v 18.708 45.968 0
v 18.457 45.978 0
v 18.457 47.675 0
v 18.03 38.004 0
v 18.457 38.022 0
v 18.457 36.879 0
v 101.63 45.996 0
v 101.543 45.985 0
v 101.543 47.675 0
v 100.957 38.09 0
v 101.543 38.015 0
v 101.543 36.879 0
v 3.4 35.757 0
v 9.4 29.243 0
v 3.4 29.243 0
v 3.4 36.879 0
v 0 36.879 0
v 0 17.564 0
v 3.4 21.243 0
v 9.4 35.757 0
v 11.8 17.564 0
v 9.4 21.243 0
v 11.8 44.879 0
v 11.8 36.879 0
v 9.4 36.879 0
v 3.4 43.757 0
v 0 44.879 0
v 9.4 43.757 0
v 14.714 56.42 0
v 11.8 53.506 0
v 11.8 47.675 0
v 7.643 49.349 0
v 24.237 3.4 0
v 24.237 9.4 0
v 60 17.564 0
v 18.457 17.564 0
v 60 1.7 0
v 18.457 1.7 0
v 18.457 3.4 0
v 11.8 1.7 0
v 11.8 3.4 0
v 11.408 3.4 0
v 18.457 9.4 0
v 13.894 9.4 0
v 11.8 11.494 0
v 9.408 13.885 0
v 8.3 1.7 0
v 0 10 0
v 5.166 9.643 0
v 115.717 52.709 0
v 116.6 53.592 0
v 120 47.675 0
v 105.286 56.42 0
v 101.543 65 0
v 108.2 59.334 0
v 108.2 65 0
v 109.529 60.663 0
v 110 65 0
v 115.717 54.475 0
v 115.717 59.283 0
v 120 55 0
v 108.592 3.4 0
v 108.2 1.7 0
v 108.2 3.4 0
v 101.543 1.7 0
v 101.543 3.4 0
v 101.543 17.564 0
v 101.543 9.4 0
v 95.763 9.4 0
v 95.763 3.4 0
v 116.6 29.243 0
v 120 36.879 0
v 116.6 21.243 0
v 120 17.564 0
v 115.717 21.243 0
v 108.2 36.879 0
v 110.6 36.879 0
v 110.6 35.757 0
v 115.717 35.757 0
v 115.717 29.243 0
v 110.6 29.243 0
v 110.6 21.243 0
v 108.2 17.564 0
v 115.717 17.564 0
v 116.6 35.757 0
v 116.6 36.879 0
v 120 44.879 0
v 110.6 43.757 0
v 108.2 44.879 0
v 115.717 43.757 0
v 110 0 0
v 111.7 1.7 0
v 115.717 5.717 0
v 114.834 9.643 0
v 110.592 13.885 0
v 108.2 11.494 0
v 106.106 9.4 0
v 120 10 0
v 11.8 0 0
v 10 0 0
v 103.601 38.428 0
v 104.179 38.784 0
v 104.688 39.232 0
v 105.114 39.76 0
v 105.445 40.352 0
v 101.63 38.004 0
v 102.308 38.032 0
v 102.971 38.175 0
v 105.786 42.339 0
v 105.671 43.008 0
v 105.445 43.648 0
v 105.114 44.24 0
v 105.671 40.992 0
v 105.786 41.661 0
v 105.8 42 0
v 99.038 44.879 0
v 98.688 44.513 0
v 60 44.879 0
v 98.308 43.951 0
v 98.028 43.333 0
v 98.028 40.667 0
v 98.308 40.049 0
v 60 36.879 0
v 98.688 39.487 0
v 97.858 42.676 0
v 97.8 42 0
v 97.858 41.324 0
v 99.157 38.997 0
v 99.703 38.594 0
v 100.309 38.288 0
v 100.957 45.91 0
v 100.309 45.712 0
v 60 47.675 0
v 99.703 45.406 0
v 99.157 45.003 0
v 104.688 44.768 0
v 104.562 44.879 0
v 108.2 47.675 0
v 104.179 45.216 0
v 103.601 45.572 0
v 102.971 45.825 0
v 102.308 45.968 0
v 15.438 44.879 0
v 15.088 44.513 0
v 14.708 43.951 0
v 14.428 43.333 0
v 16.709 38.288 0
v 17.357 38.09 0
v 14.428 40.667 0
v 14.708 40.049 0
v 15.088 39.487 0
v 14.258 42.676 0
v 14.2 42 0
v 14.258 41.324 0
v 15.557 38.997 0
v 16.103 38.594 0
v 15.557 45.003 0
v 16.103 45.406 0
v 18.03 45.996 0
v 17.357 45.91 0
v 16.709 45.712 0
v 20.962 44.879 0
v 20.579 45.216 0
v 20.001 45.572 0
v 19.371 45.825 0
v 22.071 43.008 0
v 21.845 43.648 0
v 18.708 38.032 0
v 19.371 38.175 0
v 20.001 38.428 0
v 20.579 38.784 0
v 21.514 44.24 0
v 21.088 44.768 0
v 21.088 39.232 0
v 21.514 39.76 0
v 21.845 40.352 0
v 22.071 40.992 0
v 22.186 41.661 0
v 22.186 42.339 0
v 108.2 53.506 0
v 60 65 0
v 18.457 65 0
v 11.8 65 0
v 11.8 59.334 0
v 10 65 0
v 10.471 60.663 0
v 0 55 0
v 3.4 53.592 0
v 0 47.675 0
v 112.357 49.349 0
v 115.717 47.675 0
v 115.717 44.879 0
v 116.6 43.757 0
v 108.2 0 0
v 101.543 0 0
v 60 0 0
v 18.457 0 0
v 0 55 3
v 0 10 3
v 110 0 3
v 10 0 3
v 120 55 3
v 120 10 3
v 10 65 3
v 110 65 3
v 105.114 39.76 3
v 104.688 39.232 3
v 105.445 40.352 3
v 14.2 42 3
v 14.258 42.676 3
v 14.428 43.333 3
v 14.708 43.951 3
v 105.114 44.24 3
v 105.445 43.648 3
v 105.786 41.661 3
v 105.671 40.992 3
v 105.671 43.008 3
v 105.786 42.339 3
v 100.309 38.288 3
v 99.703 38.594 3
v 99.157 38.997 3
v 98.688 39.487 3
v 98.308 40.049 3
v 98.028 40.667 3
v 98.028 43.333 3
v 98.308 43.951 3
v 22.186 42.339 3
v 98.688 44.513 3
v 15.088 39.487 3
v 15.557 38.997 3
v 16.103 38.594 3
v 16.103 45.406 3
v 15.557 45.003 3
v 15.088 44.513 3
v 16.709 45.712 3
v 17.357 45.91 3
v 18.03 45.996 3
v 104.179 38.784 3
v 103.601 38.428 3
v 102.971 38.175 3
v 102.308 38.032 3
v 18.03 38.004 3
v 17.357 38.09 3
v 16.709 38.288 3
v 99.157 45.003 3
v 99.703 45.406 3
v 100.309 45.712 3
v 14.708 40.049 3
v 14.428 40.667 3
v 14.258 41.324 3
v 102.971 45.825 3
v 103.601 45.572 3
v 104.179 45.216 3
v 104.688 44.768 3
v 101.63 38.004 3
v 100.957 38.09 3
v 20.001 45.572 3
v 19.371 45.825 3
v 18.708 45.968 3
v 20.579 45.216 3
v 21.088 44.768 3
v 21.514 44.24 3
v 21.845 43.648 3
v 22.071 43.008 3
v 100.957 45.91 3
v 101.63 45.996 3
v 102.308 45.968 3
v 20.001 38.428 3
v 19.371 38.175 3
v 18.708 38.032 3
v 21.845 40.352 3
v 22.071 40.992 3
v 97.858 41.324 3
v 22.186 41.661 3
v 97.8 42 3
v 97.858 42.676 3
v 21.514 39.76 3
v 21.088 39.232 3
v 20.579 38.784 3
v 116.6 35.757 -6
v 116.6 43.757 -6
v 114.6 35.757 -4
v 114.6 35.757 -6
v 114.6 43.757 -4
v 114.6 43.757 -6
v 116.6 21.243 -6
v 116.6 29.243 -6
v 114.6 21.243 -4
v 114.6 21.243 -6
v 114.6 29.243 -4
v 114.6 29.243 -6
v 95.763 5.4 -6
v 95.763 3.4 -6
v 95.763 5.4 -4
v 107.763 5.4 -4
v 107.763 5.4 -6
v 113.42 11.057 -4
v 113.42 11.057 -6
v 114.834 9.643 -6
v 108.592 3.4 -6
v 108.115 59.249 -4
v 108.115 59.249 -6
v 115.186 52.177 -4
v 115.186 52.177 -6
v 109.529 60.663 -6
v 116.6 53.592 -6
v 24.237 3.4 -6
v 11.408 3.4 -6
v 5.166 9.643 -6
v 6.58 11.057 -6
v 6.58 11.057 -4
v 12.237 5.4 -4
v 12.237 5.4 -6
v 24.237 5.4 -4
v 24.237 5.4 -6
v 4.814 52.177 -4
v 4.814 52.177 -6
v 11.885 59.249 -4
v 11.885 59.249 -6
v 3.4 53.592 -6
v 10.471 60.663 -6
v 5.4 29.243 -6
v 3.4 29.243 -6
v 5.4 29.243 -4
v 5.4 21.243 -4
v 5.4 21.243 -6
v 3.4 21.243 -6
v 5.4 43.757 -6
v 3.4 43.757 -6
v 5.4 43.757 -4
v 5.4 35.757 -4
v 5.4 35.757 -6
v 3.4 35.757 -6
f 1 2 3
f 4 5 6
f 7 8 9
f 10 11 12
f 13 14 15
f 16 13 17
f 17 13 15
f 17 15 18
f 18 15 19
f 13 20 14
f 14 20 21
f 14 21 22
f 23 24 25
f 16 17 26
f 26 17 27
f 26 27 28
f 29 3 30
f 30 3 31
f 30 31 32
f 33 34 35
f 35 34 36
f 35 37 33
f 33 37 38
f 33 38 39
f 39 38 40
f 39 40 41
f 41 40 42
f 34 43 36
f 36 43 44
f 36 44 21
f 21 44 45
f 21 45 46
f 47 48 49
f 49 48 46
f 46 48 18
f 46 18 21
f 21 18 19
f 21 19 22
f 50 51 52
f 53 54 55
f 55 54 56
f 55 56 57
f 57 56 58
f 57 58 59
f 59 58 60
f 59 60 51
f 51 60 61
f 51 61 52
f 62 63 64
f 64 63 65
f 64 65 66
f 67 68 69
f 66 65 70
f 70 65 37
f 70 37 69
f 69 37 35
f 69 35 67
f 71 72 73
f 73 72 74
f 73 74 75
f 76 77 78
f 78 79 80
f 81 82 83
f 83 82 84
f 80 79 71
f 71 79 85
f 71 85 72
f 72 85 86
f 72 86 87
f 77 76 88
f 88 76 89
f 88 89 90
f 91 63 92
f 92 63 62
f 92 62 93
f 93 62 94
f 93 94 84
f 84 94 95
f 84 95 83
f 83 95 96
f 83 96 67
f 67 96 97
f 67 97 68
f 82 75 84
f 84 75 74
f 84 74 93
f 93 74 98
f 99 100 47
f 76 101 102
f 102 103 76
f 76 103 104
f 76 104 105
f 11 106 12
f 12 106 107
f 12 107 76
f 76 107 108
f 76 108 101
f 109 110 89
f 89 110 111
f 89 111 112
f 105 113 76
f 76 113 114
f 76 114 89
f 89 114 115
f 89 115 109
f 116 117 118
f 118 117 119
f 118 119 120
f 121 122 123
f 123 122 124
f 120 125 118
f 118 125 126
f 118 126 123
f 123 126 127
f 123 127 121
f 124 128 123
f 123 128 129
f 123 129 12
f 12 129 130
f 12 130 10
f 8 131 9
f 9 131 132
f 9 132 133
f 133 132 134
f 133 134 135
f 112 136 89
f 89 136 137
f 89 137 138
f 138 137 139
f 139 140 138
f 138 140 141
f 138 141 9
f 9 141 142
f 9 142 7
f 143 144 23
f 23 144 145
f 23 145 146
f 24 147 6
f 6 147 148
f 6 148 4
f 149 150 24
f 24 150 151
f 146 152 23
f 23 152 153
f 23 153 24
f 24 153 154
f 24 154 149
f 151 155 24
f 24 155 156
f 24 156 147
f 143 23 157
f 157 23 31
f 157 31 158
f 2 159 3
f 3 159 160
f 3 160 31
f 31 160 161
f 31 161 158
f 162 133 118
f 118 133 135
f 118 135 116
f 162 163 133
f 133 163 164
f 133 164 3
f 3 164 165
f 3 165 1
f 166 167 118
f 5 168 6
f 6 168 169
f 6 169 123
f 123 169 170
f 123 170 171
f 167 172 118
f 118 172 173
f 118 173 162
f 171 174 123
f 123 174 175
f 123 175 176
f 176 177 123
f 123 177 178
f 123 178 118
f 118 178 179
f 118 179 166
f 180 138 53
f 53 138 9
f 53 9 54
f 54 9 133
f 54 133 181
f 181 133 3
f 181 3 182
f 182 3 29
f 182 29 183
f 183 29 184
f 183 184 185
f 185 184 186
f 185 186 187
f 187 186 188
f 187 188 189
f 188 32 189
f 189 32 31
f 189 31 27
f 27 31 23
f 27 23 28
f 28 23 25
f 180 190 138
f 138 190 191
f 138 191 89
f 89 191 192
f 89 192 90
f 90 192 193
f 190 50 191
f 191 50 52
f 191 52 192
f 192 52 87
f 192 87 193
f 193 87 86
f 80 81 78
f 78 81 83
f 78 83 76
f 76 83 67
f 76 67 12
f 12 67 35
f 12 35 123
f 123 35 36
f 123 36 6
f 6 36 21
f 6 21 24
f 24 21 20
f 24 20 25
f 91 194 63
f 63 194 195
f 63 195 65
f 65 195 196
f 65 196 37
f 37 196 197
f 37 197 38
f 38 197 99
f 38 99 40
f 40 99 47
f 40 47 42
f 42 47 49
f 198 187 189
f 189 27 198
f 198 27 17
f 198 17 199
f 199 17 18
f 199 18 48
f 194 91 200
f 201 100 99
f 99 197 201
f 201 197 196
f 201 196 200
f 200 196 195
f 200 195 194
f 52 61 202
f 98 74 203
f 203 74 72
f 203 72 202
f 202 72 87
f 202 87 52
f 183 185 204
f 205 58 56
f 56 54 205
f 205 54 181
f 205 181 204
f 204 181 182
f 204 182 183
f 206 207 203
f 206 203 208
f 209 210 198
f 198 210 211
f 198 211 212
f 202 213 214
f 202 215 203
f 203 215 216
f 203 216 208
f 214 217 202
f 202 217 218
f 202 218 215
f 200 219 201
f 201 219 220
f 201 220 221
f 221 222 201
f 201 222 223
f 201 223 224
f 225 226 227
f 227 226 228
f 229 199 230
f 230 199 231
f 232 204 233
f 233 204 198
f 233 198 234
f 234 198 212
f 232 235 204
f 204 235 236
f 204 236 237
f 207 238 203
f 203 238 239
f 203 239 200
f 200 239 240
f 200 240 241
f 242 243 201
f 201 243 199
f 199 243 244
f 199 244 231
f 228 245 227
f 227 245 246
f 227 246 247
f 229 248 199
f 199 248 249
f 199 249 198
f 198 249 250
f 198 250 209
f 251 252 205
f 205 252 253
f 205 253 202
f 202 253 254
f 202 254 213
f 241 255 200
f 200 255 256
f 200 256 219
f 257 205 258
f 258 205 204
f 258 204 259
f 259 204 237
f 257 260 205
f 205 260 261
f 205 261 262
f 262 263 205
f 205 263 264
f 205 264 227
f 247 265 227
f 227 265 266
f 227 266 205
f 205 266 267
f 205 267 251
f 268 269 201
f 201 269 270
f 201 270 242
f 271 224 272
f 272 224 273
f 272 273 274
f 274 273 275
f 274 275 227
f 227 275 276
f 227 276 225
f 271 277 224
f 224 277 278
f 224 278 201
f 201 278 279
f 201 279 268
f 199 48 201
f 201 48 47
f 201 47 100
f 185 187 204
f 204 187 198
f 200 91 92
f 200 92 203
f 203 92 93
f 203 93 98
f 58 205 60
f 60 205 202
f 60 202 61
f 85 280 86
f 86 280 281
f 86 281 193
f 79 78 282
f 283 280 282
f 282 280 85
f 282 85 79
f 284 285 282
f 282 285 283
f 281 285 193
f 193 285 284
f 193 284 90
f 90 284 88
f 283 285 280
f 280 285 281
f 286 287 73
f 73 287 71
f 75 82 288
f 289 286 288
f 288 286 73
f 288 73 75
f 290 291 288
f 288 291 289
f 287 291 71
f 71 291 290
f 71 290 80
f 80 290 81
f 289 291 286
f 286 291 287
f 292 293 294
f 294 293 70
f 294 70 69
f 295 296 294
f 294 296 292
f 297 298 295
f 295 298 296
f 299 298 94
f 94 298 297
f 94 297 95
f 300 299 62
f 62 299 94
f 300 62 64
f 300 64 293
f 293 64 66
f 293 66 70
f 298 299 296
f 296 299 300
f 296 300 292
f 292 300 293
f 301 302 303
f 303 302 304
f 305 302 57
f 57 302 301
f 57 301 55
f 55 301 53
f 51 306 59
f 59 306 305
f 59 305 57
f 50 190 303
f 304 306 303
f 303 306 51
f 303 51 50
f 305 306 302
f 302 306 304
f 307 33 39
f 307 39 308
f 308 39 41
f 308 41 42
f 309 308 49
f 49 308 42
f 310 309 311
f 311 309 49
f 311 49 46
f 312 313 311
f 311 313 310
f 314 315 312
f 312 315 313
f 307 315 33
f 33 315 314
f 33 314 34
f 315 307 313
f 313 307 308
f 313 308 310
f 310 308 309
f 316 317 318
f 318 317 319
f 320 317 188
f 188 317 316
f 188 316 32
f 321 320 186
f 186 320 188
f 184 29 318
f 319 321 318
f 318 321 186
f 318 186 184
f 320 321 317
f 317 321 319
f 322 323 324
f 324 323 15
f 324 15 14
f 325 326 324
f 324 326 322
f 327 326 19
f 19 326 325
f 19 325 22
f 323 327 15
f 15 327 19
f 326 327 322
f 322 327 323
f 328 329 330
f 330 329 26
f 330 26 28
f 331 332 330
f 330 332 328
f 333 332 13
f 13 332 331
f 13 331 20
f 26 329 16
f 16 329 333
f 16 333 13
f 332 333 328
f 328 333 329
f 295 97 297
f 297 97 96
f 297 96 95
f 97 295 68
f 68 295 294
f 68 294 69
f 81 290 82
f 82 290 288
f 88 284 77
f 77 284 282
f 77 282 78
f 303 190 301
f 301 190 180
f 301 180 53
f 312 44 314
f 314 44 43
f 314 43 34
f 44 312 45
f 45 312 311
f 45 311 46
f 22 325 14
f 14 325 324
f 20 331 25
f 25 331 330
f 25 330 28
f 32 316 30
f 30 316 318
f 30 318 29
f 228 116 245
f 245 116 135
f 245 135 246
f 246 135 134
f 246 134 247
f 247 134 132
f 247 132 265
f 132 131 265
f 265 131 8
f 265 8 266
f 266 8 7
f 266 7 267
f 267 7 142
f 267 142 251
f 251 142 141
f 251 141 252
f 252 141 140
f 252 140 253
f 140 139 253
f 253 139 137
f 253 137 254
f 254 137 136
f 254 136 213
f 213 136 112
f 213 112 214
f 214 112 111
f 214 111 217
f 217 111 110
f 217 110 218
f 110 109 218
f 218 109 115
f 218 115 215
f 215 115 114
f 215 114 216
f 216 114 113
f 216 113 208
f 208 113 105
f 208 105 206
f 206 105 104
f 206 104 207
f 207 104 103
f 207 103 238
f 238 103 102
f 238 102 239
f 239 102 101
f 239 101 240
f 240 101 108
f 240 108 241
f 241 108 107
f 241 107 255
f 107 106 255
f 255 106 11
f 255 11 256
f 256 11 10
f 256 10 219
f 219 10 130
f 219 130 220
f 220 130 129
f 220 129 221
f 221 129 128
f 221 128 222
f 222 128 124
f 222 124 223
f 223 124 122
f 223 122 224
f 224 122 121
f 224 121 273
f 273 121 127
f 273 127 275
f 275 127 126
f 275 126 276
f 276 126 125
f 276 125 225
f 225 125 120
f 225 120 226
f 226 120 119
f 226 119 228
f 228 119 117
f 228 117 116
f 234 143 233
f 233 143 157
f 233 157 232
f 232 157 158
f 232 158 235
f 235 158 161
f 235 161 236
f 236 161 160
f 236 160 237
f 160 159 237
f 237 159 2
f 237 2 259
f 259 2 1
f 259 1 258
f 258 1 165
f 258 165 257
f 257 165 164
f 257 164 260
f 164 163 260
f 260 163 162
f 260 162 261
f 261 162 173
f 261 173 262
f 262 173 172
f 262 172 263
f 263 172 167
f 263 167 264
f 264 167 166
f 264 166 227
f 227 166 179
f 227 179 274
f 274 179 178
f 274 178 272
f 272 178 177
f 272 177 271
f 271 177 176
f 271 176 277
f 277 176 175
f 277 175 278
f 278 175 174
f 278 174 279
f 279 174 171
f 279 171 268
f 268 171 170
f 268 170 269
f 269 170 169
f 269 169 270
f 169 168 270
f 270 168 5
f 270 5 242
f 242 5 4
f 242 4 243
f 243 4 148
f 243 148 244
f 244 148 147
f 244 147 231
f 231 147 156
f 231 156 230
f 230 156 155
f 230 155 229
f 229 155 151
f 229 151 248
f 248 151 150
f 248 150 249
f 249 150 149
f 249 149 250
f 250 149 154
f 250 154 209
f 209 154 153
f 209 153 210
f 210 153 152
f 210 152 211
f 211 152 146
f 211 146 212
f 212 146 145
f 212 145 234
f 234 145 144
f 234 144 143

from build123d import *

# Parameters (mm, degrees)
SKETCH1_W           = 120
SKETCH1_H           = 65
BOSS_EXTRUDE1_DEPTH = 3
CHAMFER1_SIZE       = 10
SKETCH2_W           = 2
SKETCH2_H           = 8
BOSS_EXTRUDE3_DEPTH = 6
CHAMFER2_SIZE       = 4
SKETCH4_R           = 4
CUT_EXTRUDE1_DEPTH  = 6


with BuildPart() as part:
    # Sketch1 → Boss-Extrude1 (new body)
    with BuildSketch(Plane.XY):
        with Locations((60, 32.5)):
            Rectangle(SKETCH1_W, SKETCH1_H)
    extrude(amount=BOSS_EXTRUDE1_DEPTH)

    # Chamfer1
    chamfer1_edges = [part.edges().sort_by_distance(p)[0] for p in [
        (0, 65, 1.5),
        (120, 65, 1.5),
        (120, 0, 1.5),
        (0, 0, 1.5),
    ]]
    chamfer(chamfer1_edges, length=CHAMFER1_SIZE)

    # Sketch2 → Boss-Extrude3 (add)
    with BuildSketch(Plane(origin=(0, 0, 0), x_dir=(-1, 0, 0), z_dir=(0, 0, -1))):
        with Locations((-115.6, 25.242640687)):
            Rectangle(SKETCH2_W, SKETCH2_H)
        with Locations((-115.6, 39.757359313)):
            Rectangle(SKETCH2_W, SKETCH2_H)
        Polygon((-109.528932188, 60.6627417), (-116.6, 53.591673888), (-115.185786438, 52.177460326), (-108.114718626, 59.248528137), align=None)
        Polygon((-11.885281374, 59.248528137), (-10.471067812, 60.6627417), (-3.4, 53.591673888), (-4.814213562, 52.177460326), align=None)
        with Locations((-4.4, 25.242640687)):
            Rectangle(SKETCH2_W, SKETCH2_H)
        with Locations((-4.4, 39.757359313)):
            Rectangle(SKETCH2_W, SKETCH2_H)
        Polygon((-114.834314575, 9.642640687), (-113.420101013, 11.056854249), (-107.763246763, 5.4), (-95.763246763, 5.4), (-95.763246763, 3.4), (-108.591673888, 3.4), align=None)
        Polygon((-11.408326112, 3.4), (-5.165685425, 9.642640687), (-6.579898987, 11.056854249), (-12.236753237, 5.4), (-24.236753237, 5.4), (-24.236753237, 3.4), align=None)
    extrude(amount=BOSS_EXTRUDE3_DEPTH)

    # Chamfer2
    chamfer2_edges = [part.edges().sort_by_distance(p)[0] for p in [
        (8.349747468, 55.712994231, 0),
        (5.4, 25.242640687, 0),
        (5.4, 39.757359313, 0),
        (114.6, 39.757359313, 0),
        (114.6, 25.242640687, 0),
        (101.763246763, 5.4, 0),
        (110.591673888, 8.228427125, 0),
        (111.650252532, 55.712994231, 0),
        (9.408326112, 8.228427125, 0),
        (18.236753237, 5.4, 0),
    ]]
    chamfer(chamfer2_edges, length=CHAMFER2_SIZE)

    # Sketch4 → Cut-Extrude1 (cut)
    with BuildSketch(Plane(origin=(0, 0, 0), x_dir=(-1, 0, 0), z_dir=(0, 0, -1))):
        with Locations((-18.2, 42)):
            Circle(SKETCH4_R)
        with Locations((-101.8, 42)):
            Circle(SKETCH4_R)
    extrude(amount=-CUT_EXTRUDE1_DEPTH, mode=Mode.SUBTRACT)


solid = part.part
